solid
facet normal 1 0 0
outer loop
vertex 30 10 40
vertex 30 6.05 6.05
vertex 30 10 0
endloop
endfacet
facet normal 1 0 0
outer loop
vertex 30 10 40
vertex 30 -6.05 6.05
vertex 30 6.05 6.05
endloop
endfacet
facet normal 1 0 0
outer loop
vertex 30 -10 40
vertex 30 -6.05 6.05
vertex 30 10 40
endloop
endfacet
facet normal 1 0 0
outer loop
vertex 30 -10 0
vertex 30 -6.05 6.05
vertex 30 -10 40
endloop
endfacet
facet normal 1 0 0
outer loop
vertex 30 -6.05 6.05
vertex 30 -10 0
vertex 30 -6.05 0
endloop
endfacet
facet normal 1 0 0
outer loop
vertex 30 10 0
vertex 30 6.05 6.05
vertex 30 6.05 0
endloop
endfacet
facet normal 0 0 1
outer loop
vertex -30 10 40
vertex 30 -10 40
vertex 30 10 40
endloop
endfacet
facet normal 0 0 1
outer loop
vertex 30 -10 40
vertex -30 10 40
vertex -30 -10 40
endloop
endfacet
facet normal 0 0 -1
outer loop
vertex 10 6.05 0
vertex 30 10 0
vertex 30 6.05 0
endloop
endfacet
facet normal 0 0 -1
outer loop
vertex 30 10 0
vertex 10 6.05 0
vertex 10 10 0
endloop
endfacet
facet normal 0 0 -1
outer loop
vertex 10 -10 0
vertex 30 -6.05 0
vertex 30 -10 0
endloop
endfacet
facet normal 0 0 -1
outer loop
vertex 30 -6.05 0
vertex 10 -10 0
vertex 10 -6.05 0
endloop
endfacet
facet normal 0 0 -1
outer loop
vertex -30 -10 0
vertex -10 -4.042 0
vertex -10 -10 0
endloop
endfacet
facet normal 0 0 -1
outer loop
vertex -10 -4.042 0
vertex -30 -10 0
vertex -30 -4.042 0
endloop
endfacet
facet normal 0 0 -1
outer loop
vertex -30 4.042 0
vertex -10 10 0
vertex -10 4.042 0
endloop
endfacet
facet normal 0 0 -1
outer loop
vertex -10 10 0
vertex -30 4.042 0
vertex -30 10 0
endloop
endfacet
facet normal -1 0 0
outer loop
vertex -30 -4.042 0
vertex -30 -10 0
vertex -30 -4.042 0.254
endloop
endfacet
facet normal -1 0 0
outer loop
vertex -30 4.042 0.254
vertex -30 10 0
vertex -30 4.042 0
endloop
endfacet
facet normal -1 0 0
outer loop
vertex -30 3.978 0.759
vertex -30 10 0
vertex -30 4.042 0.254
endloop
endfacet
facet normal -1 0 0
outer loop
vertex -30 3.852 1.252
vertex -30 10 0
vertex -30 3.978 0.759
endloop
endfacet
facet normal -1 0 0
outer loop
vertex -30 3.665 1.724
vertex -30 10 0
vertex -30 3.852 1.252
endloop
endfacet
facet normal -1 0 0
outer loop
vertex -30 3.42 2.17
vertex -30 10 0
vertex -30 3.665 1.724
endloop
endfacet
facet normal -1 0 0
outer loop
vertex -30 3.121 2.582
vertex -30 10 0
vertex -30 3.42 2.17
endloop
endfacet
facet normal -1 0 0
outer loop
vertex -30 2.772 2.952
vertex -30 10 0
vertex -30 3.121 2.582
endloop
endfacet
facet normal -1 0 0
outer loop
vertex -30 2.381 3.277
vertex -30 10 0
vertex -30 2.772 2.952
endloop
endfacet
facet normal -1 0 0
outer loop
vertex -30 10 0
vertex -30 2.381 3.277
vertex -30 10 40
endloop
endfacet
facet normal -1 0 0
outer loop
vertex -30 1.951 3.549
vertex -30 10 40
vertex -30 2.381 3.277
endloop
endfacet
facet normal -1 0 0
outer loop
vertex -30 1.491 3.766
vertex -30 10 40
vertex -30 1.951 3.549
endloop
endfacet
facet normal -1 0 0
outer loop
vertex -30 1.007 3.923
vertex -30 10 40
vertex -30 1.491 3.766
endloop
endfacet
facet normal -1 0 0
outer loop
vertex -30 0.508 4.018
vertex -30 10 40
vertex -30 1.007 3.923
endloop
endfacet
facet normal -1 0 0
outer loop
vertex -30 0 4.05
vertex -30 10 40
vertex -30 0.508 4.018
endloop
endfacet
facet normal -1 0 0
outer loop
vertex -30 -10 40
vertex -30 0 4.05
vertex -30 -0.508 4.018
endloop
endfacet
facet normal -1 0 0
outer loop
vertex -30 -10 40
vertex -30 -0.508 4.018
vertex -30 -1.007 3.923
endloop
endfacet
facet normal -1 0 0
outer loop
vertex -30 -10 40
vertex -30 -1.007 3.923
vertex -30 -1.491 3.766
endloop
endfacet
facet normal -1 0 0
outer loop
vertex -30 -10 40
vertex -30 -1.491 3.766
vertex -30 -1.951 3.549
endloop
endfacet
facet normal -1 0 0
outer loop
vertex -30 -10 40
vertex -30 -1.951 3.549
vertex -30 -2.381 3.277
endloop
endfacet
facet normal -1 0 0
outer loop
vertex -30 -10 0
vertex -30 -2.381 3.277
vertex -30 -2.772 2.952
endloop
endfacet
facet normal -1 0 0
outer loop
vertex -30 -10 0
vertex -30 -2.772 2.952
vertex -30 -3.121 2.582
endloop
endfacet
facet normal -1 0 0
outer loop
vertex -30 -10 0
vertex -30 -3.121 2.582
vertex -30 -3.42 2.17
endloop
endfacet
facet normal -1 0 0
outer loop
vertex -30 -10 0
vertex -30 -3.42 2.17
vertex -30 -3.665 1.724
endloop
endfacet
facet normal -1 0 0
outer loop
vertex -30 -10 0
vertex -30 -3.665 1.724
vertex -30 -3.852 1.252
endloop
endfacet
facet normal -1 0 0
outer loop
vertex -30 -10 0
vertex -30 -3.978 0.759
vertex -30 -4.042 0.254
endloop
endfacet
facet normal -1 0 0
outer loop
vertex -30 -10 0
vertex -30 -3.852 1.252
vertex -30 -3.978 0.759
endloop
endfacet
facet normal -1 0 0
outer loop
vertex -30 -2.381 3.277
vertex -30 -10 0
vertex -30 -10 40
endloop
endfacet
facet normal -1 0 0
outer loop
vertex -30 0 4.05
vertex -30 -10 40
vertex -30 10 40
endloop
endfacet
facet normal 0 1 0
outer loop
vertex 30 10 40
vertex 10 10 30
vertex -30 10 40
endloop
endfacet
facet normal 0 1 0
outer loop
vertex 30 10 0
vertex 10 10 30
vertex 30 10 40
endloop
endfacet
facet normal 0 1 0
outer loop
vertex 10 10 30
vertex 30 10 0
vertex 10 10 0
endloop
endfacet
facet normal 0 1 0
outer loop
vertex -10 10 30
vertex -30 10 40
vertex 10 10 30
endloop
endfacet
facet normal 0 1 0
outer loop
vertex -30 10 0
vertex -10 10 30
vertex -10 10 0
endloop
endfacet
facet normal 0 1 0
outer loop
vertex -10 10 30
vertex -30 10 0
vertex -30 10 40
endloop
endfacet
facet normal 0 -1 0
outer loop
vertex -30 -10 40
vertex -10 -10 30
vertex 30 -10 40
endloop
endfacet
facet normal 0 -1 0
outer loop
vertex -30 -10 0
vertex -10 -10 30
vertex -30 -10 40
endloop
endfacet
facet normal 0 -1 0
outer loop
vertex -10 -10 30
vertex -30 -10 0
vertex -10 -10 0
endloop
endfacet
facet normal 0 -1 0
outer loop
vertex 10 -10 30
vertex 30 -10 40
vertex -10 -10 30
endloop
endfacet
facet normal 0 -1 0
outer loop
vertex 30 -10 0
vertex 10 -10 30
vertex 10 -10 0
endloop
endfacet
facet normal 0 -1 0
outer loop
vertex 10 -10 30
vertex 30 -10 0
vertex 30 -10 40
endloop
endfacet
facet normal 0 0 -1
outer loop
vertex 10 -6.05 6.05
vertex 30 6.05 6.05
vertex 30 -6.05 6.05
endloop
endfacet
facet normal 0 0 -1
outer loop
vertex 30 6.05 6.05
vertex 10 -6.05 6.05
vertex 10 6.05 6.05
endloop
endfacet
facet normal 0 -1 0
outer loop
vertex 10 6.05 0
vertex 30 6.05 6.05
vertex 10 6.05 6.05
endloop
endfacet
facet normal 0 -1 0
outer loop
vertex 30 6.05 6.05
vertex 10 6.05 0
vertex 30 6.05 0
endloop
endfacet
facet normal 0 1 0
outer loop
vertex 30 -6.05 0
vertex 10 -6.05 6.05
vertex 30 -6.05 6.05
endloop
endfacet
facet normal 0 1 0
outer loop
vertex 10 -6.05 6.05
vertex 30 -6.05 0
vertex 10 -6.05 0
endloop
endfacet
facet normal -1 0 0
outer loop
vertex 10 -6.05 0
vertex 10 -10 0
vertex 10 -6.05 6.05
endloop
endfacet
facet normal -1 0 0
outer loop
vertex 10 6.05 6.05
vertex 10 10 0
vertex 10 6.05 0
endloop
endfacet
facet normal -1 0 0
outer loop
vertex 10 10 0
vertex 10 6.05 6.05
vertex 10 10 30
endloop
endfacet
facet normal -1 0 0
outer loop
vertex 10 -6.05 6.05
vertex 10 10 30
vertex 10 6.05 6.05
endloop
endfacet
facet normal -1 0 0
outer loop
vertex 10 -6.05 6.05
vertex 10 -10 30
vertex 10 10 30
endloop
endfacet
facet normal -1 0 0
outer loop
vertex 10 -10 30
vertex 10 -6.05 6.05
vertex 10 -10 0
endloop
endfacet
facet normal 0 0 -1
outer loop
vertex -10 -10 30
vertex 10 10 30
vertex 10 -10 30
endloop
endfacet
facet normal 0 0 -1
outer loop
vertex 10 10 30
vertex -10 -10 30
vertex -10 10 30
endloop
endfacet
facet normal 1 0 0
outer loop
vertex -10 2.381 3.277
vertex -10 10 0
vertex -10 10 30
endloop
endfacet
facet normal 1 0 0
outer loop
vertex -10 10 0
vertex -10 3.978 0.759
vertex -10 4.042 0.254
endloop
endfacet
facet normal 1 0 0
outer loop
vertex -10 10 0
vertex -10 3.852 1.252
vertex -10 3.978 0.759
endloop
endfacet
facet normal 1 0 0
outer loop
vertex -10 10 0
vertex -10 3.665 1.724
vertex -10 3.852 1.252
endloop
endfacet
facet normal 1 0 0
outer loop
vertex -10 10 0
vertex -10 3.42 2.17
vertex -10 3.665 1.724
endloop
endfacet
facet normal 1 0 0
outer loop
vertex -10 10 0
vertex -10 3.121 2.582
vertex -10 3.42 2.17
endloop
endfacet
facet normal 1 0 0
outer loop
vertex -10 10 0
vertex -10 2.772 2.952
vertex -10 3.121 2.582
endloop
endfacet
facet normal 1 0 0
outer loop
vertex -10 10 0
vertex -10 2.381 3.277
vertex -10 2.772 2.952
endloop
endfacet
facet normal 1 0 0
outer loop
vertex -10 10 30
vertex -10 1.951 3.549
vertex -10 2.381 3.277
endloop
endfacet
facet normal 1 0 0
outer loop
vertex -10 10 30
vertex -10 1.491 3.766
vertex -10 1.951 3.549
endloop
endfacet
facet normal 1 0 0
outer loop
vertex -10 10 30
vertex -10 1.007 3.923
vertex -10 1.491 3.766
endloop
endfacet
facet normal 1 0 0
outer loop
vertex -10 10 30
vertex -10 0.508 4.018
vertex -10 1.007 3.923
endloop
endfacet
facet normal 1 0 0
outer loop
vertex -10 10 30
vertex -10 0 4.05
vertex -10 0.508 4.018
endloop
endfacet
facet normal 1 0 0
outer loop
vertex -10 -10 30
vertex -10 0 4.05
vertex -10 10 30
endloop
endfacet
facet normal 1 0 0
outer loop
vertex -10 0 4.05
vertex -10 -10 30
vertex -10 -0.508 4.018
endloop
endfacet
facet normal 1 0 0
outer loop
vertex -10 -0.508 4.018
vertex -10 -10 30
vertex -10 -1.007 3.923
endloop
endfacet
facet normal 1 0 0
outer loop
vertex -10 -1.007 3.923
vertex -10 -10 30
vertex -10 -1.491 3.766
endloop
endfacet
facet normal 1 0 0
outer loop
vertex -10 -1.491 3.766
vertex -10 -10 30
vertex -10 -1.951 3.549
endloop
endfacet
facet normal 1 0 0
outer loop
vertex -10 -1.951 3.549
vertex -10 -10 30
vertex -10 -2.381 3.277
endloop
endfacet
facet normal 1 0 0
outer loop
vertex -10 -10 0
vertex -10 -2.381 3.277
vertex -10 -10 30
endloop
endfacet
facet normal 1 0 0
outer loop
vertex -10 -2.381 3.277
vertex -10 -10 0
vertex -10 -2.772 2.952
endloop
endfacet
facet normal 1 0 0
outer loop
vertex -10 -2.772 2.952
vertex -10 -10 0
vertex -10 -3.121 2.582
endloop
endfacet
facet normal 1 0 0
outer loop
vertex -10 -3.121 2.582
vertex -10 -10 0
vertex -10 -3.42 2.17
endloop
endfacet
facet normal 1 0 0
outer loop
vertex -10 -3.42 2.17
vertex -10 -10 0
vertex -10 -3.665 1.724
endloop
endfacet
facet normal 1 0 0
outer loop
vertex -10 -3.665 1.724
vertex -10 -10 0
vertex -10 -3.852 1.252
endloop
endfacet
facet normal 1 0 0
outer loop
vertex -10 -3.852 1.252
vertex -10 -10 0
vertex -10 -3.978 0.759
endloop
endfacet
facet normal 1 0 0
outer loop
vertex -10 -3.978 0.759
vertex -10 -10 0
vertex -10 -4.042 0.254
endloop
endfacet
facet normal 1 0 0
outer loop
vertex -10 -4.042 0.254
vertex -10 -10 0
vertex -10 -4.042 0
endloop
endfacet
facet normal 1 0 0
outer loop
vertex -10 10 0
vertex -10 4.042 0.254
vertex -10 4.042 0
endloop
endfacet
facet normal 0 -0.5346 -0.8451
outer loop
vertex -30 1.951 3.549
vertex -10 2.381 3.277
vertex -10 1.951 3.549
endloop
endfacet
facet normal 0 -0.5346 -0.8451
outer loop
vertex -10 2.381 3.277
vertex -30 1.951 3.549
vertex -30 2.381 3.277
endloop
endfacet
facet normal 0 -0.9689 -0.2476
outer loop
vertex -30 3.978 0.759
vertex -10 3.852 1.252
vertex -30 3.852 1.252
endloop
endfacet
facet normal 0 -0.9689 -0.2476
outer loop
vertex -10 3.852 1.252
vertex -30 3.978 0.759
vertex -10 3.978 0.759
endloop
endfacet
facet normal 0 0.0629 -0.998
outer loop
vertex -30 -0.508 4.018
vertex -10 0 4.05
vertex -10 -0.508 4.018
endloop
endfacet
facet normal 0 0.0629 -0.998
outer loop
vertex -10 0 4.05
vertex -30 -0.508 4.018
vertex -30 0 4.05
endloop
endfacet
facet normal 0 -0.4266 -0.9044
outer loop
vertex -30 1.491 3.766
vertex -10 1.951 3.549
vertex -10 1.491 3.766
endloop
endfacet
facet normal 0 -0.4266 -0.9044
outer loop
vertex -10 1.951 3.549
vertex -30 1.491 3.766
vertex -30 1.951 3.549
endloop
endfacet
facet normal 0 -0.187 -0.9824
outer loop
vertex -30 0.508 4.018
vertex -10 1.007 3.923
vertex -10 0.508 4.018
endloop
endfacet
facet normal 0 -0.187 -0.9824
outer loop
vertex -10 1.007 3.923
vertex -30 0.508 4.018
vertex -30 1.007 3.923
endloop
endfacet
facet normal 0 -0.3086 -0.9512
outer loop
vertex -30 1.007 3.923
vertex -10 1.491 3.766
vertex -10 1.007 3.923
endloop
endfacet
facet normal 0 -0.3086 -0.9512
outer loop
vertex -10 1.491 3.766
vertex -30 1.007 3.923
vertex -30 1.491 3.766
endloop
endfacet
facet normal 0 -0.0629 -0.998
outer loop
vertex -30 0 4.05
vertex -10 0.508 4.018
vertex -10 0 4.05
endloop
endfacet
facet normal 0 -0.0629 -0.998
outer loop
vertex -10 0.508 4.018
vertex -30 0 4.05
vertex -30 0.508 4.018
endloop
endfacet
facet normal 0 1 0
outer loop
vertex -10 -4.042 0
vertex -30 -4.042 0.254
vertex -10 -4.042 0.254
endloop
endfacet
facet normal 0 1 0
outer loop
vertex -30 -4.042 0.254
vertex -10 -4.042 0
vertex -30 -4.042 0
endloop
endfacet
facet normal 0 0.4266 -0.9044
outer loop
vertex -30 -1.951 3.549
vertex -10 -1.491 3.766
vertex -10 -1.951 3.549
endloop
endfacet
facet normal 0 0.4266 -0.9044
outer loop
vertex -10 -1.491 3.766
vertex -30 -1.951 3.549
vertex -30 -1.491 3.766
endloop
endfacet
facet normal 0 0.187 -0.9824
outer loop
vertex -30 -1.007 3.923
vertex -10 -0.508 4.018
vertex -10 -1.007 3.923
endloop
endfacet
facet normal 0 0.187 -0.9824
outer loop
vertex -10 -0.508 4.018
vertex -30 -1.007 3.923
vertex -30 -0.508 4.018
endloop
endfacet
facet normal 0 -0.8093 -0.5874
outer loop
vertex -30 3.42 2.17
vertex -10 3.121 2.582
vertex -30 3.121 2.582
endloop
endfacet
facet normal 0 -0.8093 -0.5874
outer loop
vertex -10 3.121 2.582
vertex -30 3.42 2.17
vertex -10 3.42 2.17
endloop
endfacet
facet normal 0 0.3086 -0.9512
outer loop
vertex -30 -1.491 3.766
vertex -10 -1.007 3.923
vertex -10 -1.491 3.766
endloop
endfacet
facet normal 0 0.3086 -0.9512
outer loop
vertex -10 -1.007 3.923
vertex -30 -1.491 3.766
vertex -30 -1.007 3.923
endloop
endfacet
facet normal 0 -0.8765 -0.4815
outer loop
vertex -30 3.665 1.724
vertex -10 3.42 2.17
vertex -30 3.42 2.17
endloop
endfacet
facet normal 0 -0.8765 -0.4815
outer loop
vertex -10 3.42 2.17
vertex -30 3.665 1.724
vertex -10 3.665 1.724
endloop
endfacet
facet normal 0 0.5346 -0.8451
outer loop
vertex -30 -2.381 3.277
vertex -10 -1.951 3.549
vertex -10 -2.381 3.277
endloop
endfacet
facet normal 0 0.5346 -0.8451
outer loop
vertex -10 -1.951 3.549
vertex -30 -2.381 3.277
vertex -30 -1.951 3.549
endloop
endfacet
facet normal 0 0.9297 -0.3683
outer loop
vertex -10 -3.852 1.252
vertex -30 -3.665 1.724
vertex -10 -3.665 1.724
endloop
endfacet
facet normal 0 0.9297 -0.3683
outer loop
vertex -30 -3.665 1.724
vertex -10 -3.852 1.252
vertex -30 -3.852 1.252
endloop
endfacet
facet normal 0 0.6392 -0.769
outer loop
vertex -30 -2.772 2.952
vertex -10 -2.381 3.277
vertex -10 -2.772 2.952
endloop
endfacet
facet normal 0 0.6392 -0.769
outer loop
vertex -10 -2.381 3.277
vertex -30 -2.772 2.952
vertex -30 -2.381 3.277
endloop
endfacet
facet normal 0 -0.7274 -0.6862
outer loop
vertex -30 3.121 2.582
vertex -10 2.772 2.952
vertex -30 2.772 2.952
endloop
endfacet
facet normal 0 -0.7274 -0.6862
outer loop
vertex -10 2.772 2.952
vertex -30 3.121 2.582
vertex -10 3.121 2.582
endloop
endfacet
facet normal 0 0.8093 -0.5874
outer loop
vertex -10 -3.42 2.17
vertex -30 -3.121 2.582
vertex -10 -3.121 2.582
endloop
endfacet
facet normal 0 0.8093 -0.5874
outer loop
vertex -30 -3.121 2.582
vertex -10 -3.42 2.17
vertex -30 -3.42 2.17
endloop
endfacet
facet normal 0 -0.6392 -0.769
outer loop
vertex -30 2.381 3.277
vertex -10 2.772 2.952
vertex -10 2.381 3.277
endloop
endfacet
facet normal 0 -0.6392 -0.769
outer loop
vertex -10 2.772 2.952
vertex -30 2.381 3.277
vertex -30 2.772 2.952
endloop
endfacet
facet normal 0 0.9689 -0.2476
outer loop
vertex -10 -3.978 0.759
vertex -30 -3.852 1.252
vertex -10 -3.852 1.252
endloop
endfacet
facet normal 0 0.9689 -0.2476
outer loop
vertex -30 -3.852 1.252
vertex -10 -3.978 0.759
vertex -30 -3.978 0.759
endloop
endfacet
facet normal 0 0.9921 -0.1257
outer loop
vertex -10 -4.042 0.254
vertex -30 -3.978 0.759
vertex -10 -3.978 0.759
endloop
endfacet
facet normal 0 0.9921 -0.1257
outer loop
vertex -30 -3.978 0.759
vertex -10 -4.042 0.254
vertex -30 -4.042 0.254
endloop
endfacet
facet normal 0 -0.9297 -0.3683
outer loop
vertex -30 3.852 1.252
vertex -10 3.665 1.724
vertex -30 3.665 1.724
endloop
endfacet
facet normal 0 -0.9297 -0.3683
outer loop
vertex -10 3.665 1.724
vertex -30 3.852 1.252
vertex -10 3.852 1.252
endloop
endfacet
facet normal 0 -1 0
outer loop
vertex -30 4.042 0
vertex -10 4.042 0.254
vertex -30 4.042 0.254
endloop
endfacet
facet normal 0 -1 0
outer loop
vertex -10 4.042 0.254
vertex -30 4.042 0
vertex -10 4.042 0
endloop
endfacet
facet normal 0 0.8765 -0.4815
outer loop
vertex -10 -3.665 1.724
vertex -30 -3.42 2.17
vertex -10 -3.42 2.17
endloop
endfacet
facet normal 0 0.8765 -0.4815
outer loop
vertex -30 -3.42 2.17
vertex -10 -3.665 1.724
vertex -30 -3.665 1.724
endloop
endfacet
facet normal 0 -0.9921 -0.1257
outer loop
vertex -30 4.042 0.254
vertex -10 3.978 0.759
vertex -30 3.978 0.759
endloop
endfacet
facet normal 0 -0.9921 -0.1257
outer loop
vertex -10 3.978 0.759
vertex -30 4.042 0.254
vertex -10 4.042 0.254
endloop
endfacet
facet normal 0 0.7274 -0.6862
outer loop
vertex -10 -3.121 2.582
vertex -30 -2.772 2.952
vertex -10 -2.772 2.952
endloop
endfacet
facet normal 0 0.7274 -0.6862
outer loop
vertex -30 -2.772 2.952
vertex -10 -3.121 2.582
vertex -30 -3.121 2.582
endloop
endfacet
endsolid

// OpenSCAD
$fn=50;

width = 55;
height = 55;
holder_size = 12;
base_thickness = 4;
radiator_distance = 10;

difference() {
    translate([-30, -holder_size / 2 - 4, 0]) cube([60, holder_size+2*4, 40]);
    translate([0, -holder_size / 2-0.05, -holder_size / 2-0.05]) cube([width, holder_size+0.1, holder_size+0.1]);
    translate([-10, -holder_size / 2 - 5, -1]) cube([20, holder_size+2*5, 1+30]);
    rotate([0, -90, 0]) cylinder(40, d=8.1);
}
